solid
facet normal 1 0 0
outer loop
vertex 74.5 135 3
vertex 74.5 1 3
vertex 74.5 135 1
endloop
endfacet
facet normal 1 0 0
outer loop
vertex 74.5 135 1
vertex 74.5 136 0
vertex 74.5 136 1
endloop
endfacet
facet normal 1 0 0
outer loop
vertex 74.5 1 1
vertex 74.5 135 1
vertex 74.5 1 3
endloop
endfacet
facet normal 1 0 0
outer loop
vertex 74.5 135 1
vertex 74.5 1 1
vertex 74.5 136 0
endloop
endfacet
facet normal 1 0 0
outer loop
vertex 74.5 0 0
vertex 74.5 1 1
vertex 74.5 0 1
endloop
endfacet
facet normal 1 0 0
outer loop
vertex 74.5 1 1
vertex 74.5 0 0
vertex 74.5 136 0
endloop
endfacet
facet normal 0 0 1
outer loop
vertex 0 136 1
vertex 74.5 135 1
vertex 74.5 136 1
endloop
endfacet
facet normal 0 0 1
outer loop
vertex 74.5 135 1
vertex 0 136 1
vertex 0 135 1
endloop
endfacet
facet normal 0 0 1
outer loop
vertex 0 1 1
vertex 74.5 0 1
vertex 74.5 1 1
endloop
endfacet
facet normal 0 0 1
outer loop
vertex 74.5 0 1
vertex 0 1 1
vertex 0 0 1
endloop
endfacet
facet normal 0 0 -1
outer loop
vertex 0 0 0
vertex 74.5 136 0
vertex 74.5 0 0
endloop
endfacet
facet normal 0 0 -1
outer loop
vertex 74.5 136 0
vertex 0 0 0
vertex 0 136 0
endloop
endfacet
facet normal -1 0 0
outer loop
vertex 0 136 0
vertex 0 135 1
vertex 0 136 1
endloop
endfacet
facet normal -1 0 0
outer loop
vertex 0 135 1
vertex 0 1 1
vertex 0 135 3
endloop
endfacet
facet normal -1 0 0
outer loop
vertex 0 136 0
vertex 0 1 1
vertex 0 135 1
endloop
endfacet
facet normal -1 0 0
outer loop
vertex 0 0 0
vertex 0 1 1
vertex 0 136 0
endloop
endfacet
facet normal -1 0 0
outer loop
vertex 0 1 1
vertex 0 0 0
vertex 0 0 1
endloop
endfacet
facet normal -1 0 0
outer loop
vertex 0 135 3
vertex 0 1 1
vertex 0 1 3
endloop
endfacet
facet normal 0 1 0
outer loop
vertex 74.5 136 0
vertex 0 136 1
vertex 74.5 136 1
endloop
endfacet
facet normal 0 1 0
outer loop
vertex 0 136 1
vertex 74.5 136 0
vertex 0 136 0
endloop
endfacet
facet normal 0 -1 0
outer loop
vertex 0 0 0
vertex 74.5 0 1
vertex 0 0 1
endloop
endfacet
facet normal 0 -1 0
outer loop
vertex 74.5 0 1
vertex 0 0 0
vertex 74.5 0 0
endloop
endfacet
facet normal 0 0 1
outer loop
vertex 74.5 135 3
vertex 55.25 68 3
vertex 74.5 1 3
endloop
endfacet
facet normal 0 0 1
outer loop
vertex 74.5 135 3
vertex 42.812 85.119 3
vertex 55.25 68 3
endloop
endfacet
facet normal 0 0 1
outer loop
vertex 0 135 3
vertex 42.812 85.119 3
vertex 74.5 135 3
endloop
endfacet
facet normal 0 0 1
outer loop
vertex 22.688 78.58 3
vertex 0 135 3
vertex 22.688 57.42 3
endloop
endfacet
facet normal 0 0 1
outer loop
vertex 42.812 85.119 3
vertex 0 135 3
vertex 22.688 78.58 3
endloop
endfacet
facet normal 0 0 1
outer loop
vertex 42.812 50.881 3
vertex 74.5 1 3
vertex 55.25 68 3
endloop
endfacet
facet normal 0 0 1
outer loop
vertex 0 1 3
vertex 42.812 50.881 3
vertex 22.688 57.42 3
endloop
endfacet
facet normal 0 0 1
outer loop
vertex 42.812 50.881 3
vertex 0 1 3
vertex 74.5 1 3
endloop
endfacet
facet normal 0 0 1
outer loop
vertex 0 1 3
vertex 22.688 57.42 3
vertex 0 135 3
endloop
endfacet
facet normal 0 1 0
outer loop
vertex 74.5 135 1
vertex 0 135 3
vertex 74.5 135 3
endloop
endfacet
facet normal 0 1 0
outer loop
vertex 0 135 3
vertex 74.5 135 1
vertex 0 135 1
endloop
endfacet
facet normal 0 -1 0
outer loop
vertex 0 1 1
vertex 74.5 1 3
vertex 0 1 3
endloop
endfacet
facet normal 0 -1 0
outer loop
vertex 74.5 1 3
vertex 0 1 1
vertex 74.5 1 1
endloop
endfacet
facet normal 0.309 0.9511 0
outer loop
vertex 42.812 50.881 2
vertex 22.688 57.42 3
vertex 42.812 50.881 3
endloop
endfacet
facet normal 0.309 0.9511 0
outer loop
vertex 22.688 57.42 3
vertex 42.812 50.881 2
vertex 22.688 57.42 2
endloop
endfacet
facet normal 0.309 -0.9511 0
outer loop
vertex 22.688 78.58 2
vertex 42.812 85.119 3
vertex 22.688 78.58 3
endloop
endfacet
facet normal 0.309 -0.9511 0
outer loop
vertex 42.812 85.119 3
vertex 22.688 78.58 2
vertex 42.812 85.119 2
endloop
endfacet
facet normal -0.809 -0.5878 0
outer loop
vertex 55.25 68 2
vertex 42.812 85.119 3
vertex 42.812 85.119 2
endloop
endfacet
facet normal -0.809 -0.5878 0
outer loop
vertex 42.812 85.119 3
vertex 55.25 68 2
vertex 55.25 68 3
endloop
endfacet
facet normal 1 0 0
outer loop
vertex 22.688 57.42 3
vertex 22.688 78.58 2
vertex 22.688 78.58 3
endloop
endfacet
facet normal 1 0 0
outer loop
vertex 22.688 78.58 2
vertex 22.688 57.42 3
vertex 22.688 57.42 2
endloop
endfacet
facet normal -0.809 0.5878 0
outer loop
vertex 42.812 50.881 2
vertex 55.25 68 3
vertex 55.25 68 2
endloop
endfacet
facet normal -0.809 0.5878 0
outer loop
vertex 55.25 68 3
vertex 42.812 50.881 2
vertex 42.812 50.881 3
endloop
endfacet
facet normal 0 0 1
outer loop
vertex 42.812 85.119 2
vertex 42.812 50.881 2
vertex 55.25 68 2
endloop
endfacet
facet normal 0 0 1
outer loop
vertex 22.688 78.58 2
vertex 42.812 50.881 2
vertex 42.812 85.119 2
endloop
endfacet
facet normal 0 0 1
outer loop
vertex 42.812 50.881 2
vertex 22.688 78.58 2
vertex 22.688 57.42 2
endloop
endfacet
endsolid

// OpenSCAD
DIM = [
	76.5, // Spielerinnenablage richtung
	138, // Links-Rechts
	29
];



difference(){

	union(){
		cube([ DIM.x-2 , DIM.y-2 , 1 ]);
		translate([ 0 , 1 , 1 ]) cube([ DIM.x-2 , DIM.y-4 , 2 ]);
	}
	
	// Symbol
	translate([ 0.5*(DIM.x-2) , 0.5*(DIM.y-2) , 2 ]) Symbol();
}

module Symbol () {
	
	cylinder(h=10,r=18,$fn=5) ;
	
}
